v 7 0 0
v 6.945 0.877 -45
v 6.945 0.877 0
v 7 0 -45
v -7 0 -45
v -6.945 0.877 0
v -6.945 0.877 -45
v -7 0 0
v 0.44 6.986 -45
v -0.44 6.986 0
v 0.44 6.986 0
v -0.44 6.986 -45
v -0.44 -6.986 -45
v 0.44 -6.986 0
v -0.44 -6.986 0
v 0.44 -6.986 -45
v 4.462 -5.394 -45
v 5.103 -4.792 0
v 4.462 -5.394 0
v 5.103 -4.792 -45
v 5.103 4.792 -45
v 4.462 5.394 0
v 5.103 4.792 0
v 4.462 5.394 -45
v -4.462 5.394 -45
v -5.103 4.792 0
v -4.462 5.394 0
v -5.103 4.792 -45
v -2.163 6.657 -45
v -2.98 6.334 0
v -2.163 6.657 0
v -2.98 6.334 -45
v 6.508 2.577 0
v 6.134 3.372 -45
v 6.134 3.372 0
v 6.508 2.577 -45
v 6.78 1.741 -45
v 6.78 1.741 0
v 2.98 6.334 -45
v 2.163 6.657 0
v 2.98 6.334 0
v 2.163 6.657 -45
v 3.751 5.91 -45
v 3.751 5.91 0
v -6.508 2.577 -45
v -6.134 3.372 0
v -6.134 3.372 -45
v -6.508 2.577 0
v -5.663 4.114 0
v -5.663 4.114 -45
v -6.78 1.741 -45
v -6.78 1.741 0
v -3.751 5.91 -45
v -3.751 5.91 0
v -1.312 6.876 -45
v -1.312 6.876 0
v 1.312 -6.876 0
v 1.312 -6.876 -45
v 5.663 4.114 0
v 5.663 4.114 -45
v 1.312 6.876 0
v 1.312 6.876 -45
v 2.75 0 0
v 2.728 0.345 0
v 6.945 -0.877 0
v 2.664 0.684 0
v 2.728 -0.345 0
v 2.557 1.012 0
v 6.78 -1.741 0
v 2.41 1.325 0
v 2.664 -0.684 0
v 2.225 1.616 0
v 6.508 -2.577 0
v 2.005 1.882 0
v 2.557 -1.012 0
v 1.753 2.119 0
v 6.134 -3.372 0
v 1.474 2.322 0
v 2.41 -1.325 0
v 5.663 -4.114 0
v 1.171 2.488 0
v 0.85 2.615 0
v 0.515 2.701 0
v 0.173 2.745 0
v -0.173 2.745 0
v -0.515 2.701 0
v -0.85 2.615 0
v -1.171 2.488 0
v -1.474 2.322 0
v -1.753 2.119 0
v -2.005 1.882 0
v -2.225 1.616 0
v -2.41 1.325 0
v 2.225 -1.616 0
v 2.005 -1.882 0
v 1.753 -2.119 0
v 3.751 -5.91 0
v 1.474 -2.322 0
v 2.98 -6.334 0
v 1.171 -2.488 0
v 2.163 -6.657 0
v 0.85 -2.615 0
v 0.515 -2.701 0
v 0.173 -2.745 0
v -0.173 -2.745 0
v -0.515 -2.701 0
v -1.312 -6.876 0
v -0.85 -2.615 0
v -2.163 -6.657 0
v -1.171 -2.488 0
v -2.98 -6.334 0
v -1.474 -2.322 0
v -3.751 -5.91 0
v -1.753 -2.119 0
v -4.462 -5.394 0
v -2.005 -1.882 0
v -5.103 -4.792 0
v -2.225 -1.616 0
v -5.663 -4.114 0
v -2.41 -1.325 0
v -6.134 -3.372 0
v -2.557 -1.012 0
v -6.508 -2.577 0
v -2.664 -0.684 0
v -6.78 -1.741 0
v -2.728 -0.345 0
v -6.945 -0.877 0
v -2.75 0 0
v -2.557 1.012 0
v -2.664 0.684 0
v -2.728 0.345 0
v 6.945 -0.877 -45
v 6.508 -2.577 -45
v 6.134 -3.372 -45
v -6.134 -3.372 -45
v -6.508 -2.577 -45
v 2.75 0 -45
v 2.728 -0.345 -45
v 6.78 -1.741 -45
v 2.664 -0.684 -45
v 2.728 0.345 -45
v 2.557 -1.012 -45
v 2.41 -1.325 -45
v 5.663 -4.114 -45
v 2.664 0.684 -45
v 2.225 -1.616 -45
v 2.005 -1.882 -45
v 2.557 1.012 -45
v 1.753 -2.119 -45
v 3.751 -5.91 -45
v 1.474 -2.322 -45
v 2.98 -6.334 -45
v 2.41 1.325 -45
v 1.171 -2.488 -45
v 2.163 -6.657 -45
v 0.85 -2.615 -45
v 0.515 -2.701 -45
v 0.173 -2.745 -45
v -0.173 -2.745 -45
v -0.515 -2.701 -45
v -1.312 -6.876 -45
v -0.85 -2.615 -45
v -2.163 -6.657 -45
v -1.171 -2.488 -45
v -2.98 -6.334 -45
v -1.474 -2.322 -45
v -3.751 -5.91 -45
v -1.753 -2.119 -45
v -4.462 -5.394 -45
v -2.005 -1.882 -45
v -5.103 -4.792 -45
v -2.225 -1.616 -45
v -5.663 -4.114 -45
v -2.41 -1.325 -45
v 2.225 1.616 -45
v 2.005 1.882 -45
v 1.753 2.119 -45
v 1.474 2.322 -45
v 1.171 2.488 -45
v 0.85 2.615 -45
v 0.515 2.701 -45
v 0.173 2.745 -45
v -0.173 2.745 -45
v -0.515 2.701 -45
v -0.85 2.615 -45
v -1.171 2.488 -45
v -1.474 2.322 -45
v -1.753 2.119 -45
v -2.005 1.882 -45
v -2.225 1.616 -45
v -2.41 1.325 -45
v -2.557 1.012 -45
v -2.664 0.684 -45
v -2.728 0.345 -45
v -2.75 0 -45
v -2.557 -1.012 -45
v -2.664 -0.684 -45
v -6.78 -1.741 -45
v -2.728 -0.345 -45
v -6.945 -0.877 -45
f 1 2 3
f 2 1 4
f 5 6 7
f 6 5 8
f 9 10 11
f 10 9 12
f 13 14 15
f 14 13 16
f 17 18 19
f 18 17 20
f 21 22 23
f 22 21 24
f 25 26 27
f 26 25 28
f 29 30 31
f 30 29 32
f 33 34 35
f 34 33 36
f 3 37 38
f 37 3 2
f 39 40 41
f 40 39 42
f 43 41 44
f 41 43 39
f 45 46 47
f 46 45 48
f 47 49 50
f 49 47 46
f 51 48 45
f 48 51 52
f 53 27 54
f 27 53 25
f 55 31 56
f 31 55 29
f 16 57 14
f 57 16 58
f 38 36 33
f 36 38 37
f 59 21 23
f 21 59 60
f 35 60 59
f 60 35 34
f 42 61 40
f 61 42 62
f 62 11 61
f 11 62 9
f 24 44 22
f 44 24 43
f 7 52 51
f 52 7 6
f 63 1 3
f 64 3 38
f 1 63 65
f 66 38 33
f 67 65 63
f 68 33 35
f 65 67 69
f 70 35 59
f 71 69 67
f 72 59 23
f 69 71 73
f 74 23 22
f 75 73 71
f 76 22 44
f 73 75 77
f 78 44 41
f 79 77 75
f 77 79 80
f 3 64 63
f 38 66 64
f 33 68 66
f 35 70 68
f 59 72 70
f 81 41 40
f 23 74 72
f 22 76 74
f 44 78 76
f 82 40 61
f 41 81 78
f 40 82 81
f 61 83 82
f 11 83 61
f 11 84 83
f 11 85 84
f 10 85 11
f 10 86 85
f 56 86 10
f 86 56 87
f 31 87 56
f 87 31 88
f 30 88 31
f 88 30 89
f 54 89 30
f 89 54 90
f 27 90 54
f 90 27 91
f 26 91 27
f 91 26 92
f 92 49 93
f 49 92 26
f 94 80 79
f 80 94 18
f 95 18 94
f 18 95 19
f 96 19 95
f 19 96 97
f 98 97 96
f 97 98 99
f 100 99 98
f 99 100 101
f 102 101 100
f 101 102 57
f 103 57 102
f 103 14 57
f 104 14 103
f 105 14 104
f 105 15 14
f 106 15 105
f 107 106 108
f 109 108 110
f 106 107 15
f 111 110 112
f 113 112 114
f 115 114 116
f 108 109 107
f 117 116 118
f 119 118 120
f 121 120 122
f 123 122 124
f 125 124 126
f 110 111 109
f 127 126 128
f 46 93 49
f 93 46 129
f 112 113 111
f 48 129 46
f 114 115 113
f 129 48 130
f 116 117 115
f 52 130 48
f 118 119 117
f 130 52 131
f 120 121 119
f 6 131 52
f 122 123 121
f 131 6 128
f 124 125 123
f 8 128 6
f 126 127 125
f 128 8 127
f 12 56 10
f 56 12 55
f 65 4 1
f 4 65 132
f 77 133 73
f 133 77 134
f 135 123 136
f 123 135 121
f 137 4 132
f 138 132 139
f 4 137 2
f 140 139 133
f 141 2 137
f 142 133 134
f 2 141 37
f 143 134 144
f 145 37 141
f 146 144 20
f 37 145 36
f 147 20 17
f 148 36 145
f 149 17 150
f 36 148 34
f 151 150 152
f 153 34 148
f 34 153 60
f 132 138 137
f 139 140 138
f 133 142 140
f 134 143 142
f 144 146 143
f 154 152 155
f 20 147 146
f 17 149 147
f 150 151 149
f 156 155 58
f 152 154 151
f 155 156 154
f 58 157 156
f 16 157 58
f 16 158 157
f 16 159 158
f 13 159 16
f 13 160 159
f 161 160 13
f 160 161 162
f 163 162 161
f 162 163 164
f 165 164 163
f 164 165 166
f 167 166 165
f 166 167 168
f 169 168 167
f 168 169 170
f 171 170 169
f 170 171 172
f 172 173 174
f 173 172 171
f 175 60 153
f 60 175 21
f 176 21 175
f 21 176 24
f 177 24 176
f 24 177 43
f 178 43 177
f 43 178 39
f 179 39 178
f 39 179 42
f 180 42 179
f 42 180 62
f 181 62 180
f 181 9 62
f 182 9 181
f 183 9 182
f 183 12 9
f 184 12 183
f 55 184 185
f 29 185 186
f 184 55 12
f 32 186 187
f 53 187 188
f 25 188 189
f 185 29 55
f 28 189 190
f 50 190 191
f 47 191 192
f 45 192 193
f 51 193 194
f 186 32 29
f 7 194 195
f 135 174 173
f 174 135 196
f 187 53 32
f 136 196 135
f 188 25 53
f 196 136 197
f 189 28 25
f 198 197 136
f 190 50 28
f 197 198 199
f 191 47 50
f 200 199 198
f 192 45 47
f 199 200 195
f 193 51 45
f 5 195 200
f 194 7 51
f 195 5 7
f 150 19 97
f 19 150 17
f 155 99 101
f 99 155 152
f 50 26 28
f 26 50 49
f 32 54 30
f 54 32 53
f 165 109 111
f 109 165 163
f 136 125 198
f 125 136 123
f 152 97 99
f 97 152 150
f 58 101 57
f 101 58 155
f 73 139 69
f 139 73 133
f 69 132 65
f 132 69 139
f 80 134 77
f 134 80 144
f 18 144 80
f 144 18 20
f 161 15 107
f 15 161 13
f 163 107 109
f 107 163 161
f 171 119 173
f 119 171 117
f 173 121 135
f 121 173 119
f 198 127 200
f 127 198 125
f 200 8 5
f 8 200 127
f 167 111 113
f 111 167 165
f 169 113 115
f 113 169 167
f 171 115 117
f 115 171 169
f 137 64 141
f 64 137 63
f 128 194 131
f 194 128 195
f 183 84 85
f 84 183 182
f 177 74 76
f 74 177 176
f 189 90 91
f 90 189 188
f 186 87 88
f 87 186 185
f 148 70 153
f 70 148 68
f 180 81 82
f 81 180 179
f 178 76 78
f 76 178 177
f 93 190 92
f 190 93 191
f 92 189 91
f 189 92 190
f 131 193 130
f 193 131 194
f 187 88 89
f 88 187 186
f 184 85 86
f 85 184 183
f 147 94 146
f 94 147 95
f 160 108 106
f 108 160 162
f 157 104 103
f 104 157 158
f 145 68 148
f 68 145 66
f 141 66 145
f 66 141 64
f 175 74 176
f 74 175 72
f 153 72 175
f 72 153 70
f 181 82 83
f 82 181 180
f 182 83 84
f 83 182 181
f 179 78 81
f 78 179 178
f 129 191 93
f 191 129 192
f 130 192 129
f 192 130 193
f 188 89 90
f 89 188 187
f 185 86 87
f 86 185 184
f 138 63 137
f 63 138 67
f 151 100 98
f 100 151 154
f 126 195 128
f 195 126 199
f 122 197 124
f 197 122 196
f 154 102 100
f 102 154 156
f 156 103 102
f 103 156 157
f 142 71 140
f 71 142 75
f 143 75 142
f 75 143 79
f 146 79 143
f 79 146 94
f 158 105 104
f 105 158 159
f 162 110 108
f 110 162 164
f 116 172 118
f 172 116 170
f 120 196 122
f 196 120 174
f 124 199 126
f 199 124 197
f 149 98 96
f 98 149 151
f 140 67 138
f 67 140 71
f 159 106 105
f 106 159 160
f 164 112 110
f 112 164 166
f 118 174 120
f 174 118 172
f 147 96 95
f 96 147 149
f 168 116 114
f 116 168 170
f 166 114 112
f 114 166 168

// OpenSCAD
$fn = 50;


difference() {
	union() {
		translate(v = [0, 0, -45.0000000000]) {
			cylinder(h = 45, r = 7.0000000000);
		}
	}
	union() {
		#translate(v = [0, 0, -45]) {
			cylinder(h = 45, r = 2.7500000000);
		}
	}
}
